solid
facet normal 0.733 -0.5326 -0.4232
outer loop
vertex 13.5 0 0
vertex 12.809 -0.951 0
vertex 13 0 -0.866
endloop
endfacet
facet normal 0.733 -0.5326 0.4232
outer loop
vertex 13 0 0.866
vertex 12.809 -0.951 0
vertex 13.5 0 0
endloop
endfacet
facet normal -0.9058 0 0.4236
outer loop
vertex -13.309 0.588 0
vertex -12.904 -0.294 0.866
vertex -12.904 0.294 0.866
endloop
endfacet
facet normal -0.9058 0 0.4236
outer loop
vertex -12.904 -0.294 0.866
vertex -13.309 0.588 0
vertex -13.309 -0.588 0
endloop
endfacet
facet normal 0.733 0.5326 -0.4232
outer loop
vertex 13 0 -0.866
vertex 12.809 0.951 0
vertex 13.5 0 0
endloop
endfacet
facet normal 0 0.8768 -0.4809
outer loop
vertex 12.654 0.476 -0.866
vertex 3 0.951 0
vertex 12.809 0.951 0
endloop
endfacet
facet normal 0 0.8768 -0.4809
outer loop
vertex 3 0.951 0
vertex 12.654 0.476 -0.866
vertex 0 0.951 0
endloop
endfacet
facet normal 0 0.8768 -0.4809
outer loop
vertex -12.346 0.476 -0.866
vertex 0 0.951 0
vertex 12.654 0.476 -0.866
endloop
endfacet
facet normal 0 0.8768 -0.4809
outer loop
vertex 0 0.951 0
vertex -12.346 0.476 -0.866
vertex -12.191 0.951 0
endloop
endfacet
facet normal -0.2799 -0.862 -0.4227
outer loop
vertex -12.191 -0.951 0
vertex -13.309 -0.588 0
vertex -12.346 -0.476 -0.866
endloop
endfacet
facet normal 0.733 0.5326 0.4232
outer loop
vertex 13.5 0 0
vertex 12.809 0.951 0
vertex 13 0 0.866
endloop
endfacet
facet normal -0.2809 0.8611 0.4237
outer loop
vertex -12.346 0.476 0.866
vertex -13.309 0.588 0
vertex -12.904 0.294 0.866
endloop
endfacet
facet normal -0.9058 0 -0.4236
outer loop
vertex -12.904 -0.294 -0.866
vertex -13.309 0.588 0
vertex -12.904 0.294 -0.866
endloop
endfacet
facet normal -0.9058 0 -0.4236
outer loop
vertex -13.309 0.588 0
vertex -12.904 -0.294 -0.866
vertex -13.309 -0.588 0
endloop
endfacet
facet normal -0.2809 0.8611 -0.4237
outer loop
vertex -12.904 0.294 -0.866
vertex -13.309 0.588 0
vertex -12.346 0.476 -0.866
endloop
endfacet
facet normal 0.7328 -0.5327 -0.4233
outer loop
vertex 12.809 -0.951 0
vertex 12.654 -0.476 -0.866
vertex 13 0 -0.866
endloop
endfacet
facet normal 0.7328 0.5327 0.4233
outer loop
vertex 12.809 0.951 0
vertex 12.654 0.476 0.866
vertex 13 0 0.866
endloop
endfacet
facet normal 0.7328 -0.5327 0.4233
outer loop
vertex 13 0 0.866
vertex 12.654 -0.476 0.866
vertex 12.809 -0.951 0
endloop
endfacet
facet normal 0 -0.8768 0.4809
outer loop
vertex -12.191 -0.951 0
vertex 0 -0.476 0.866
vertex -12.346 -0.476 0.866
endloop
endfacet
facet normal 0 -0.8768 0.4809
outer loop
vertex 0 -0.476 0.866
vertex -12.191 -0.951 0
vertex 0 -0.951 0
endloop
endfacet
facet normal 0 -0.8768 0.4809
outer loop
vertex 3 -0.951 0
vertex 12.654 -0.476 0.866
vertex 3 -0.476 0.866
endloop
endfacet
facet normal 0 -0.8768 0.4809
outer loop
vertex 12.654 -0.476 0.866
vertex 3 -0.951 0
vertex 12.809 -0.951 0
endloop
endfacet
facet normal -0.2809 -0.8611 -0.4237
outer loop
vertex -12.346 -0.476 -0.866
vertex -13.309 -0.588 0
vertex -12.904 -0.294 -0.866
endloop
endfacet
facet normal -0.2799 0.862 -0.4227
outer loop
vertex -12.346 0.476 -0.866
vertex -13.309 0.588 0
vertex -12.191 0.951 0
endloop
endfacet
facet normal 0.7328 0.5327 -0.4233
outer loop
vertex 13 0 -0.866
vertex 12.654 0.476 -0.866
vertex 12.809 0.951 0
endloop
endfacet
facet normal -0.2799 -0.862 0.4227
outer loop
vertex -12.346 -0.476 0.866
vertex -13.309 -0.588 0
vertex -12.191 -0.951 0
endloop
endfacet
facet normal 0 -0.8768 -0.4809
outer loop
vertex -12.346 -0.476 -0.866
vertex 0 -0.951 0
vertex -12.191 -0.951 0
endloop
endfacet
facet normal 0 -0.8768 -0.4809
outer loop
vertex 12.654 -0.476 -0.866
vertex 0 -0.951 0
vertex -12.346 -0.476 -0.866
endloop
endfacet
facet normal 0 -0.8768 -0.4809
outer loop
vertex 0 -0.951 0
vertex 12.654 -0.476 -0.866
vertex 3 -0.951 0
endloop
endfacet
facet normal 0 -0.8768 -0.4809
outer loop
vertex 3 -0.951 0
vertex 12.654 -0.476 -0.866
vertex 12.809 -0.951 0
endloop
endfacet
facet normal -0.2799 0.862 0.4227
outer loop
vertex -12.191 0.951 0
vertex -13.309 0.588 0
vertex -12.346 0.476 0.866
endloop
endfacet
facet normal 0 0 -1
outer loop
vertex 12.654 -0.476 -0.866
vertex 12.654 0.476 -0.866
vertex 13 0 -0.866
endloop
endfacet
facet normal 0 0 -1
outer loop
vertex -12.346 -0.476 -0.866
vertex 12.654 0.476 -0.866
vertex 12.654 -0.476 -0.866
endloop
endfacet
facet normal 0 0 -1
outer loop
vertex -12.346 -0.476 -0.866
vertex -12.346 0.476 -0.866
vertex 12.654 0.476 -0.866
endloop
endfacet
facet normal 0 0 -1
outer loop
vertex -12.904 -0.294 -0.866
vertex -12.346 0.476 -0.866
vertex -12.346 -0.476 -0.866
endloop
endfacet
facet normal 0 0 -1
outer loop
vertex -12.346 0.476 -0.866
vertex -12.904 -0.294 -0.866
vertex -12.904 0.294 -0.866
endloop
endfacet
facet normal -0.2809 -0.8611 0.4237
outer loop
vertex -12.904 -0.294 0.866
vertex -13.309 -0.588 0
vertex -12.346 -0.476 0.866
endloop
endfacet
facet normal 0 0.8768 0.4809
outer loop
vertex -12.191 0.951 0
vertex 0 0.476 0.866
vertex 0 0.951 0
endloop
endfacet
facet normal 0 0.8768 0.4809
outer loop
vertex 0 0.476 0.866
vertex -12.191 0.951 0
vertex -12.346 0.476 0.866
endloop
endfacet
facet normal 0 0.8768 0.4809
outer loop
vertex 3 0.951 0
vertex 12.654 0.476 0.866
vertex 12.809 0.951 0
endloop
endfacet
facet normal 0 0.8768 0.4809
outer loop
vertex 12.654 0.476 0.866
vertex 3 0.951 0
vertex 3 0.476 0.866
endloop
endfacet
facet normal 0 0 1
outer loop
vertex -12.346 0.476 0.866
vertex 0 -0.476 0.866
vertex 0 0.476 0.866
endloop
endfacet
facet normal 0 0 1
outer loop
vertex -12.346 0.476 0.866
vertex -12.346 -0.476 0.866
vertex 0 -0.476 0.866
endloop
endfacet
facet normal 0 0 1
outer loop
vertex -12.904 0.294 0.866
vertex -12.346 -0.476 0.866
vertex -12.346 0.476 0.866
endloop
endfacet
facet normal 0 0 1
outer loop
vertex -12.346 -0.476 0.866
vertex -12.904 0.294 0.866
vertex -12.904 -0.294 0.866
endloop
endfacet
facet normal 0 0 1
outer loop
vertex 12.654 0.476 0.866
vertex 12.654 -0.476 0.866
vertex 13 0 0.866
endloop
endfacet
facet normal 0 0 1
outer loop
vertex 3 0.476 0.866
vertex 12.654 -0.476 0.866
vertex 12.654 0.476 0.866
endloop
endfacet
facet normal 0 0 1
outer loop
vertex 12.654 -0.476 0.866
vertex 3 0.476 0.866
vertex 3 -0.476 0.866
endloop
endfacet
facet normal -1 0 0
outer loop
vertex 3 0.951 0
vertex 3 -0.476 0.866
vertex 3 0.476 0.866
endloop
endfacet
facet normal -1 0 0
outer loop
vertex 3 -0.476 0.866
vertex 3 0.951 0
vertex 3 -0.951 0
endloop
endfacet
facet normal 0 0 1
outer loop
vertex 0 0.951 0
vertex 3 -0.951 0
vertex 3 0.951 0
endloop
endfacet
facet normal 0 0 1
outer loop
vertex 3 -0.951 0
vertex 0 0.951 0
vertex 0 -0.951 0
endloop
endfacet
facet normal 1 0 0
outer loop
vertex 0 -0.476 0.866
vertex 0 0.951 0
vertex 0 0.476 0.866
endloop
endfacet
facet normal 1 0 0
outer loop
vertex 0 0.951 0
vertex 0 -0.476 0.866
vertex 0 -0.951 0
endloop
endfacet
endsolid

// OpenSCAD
// Leaf Parameters
leaf_width = 50;
leaf_height = 40;
leaf_detail = 32;
vein_width = 3;
vein_offset = 15;

module leaf() {
  difference() {
    hull() {
      translate([0,0,0]) sphere(r=1);
      translate([leaf_width/4,0,0]) sphere(r=1);
      translate([-leaf_width/4,0,0]) sphere(r=1);
    }

    // Veins
    translate([0, -vein_offset, 0])
    cube([vein_width, leaf_height, 1]);
    translate([leaf_width/2, -vein_offset, 0])
    cube([vein_width, leaf_height, 1]);
  }
}

leaf();
